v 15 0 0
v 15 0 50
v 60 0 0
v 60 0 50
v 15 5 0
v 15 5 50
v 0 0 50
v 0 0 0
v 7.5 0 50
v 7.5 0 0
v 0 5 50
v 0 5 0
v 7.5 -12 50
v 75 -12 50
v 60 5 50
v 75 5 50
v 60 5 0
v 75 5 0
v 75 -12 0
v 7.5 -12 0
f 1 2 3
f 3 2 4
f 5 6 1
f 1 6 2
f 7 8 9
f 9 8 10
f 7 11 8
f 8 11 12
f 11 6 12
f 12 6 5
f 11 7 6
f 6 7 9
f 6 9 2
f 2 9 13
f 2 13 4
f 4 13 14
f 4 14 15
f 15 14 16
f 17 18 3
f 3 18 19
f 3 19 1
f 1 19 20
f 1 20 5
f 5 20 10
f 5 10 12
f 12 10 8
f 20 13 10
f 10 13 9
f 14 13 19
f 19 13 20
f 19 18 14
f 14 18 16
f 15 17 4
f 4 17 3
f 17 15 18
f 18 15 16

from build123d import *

# Parameters (mm, degrees)
SKETCH_1_W      = 15
SKETCH_1_H      = 5
EXTRUDE_1_DEPTH = 50
SKETCH_2_W      = 7.5
SKETCH_2_H      = 50
EXTRUDE_2_DEPTH = 12
SKETCH_3_W      = 50
SKETCH_3_H      = 12
EXTRUDE_3_DEPTH = 60
SKETCH_4_W      = 15
SKETCH_4_H      = 50
EXTRUDE_4_DEPTH = 5


with BuildPart() as part:
    # 스케치1 → 보스-돌출1 (new body)
    with BuildSketch(Plane.XY):
        with Locations((7.5, 2.5)):
            Rectangle(SKETCH_1_W, SKETCH_1_H)
    extrude(amount=EXTRUDE_1_DEPTH)

    # 스케치2 → 보스-돌출2 (add)
    with BuildSketch(Plane.XZ):
        with Locations((11.25, 25)):
            Rectangle(SKETCH_2_W, SKETCH_2_H)
    extrude(amount=EXTRUDE_2_DEPTH)

    # 스케치3 → 보스-돌출3 (add)
    with BuildSketch(Plane(origin=(15, 0, 0), x_dir=(0, 0, -1), z_dir=(1, 0, 0))):
        with Locations((-25, -6)):
            Rectangle(SKETCH_3_W, SKETCH_3_H)
    extrude(amount=EXTRUDE_3_DEPTH)

    # 스케치4 → 보스-돌출4 (add)
    with BuildSketch(Plane(origin=(0, 0, 0), x_dir=(1, 0, 0), z_dir=(0, 1, 0))):
        with Locations((67.5, -25)):
            Rectangle(SKETCH_4_W, SKETCH_4_H)
    extrude(amount=EXTRUDE_4_DEPTH)


solid = part.part
